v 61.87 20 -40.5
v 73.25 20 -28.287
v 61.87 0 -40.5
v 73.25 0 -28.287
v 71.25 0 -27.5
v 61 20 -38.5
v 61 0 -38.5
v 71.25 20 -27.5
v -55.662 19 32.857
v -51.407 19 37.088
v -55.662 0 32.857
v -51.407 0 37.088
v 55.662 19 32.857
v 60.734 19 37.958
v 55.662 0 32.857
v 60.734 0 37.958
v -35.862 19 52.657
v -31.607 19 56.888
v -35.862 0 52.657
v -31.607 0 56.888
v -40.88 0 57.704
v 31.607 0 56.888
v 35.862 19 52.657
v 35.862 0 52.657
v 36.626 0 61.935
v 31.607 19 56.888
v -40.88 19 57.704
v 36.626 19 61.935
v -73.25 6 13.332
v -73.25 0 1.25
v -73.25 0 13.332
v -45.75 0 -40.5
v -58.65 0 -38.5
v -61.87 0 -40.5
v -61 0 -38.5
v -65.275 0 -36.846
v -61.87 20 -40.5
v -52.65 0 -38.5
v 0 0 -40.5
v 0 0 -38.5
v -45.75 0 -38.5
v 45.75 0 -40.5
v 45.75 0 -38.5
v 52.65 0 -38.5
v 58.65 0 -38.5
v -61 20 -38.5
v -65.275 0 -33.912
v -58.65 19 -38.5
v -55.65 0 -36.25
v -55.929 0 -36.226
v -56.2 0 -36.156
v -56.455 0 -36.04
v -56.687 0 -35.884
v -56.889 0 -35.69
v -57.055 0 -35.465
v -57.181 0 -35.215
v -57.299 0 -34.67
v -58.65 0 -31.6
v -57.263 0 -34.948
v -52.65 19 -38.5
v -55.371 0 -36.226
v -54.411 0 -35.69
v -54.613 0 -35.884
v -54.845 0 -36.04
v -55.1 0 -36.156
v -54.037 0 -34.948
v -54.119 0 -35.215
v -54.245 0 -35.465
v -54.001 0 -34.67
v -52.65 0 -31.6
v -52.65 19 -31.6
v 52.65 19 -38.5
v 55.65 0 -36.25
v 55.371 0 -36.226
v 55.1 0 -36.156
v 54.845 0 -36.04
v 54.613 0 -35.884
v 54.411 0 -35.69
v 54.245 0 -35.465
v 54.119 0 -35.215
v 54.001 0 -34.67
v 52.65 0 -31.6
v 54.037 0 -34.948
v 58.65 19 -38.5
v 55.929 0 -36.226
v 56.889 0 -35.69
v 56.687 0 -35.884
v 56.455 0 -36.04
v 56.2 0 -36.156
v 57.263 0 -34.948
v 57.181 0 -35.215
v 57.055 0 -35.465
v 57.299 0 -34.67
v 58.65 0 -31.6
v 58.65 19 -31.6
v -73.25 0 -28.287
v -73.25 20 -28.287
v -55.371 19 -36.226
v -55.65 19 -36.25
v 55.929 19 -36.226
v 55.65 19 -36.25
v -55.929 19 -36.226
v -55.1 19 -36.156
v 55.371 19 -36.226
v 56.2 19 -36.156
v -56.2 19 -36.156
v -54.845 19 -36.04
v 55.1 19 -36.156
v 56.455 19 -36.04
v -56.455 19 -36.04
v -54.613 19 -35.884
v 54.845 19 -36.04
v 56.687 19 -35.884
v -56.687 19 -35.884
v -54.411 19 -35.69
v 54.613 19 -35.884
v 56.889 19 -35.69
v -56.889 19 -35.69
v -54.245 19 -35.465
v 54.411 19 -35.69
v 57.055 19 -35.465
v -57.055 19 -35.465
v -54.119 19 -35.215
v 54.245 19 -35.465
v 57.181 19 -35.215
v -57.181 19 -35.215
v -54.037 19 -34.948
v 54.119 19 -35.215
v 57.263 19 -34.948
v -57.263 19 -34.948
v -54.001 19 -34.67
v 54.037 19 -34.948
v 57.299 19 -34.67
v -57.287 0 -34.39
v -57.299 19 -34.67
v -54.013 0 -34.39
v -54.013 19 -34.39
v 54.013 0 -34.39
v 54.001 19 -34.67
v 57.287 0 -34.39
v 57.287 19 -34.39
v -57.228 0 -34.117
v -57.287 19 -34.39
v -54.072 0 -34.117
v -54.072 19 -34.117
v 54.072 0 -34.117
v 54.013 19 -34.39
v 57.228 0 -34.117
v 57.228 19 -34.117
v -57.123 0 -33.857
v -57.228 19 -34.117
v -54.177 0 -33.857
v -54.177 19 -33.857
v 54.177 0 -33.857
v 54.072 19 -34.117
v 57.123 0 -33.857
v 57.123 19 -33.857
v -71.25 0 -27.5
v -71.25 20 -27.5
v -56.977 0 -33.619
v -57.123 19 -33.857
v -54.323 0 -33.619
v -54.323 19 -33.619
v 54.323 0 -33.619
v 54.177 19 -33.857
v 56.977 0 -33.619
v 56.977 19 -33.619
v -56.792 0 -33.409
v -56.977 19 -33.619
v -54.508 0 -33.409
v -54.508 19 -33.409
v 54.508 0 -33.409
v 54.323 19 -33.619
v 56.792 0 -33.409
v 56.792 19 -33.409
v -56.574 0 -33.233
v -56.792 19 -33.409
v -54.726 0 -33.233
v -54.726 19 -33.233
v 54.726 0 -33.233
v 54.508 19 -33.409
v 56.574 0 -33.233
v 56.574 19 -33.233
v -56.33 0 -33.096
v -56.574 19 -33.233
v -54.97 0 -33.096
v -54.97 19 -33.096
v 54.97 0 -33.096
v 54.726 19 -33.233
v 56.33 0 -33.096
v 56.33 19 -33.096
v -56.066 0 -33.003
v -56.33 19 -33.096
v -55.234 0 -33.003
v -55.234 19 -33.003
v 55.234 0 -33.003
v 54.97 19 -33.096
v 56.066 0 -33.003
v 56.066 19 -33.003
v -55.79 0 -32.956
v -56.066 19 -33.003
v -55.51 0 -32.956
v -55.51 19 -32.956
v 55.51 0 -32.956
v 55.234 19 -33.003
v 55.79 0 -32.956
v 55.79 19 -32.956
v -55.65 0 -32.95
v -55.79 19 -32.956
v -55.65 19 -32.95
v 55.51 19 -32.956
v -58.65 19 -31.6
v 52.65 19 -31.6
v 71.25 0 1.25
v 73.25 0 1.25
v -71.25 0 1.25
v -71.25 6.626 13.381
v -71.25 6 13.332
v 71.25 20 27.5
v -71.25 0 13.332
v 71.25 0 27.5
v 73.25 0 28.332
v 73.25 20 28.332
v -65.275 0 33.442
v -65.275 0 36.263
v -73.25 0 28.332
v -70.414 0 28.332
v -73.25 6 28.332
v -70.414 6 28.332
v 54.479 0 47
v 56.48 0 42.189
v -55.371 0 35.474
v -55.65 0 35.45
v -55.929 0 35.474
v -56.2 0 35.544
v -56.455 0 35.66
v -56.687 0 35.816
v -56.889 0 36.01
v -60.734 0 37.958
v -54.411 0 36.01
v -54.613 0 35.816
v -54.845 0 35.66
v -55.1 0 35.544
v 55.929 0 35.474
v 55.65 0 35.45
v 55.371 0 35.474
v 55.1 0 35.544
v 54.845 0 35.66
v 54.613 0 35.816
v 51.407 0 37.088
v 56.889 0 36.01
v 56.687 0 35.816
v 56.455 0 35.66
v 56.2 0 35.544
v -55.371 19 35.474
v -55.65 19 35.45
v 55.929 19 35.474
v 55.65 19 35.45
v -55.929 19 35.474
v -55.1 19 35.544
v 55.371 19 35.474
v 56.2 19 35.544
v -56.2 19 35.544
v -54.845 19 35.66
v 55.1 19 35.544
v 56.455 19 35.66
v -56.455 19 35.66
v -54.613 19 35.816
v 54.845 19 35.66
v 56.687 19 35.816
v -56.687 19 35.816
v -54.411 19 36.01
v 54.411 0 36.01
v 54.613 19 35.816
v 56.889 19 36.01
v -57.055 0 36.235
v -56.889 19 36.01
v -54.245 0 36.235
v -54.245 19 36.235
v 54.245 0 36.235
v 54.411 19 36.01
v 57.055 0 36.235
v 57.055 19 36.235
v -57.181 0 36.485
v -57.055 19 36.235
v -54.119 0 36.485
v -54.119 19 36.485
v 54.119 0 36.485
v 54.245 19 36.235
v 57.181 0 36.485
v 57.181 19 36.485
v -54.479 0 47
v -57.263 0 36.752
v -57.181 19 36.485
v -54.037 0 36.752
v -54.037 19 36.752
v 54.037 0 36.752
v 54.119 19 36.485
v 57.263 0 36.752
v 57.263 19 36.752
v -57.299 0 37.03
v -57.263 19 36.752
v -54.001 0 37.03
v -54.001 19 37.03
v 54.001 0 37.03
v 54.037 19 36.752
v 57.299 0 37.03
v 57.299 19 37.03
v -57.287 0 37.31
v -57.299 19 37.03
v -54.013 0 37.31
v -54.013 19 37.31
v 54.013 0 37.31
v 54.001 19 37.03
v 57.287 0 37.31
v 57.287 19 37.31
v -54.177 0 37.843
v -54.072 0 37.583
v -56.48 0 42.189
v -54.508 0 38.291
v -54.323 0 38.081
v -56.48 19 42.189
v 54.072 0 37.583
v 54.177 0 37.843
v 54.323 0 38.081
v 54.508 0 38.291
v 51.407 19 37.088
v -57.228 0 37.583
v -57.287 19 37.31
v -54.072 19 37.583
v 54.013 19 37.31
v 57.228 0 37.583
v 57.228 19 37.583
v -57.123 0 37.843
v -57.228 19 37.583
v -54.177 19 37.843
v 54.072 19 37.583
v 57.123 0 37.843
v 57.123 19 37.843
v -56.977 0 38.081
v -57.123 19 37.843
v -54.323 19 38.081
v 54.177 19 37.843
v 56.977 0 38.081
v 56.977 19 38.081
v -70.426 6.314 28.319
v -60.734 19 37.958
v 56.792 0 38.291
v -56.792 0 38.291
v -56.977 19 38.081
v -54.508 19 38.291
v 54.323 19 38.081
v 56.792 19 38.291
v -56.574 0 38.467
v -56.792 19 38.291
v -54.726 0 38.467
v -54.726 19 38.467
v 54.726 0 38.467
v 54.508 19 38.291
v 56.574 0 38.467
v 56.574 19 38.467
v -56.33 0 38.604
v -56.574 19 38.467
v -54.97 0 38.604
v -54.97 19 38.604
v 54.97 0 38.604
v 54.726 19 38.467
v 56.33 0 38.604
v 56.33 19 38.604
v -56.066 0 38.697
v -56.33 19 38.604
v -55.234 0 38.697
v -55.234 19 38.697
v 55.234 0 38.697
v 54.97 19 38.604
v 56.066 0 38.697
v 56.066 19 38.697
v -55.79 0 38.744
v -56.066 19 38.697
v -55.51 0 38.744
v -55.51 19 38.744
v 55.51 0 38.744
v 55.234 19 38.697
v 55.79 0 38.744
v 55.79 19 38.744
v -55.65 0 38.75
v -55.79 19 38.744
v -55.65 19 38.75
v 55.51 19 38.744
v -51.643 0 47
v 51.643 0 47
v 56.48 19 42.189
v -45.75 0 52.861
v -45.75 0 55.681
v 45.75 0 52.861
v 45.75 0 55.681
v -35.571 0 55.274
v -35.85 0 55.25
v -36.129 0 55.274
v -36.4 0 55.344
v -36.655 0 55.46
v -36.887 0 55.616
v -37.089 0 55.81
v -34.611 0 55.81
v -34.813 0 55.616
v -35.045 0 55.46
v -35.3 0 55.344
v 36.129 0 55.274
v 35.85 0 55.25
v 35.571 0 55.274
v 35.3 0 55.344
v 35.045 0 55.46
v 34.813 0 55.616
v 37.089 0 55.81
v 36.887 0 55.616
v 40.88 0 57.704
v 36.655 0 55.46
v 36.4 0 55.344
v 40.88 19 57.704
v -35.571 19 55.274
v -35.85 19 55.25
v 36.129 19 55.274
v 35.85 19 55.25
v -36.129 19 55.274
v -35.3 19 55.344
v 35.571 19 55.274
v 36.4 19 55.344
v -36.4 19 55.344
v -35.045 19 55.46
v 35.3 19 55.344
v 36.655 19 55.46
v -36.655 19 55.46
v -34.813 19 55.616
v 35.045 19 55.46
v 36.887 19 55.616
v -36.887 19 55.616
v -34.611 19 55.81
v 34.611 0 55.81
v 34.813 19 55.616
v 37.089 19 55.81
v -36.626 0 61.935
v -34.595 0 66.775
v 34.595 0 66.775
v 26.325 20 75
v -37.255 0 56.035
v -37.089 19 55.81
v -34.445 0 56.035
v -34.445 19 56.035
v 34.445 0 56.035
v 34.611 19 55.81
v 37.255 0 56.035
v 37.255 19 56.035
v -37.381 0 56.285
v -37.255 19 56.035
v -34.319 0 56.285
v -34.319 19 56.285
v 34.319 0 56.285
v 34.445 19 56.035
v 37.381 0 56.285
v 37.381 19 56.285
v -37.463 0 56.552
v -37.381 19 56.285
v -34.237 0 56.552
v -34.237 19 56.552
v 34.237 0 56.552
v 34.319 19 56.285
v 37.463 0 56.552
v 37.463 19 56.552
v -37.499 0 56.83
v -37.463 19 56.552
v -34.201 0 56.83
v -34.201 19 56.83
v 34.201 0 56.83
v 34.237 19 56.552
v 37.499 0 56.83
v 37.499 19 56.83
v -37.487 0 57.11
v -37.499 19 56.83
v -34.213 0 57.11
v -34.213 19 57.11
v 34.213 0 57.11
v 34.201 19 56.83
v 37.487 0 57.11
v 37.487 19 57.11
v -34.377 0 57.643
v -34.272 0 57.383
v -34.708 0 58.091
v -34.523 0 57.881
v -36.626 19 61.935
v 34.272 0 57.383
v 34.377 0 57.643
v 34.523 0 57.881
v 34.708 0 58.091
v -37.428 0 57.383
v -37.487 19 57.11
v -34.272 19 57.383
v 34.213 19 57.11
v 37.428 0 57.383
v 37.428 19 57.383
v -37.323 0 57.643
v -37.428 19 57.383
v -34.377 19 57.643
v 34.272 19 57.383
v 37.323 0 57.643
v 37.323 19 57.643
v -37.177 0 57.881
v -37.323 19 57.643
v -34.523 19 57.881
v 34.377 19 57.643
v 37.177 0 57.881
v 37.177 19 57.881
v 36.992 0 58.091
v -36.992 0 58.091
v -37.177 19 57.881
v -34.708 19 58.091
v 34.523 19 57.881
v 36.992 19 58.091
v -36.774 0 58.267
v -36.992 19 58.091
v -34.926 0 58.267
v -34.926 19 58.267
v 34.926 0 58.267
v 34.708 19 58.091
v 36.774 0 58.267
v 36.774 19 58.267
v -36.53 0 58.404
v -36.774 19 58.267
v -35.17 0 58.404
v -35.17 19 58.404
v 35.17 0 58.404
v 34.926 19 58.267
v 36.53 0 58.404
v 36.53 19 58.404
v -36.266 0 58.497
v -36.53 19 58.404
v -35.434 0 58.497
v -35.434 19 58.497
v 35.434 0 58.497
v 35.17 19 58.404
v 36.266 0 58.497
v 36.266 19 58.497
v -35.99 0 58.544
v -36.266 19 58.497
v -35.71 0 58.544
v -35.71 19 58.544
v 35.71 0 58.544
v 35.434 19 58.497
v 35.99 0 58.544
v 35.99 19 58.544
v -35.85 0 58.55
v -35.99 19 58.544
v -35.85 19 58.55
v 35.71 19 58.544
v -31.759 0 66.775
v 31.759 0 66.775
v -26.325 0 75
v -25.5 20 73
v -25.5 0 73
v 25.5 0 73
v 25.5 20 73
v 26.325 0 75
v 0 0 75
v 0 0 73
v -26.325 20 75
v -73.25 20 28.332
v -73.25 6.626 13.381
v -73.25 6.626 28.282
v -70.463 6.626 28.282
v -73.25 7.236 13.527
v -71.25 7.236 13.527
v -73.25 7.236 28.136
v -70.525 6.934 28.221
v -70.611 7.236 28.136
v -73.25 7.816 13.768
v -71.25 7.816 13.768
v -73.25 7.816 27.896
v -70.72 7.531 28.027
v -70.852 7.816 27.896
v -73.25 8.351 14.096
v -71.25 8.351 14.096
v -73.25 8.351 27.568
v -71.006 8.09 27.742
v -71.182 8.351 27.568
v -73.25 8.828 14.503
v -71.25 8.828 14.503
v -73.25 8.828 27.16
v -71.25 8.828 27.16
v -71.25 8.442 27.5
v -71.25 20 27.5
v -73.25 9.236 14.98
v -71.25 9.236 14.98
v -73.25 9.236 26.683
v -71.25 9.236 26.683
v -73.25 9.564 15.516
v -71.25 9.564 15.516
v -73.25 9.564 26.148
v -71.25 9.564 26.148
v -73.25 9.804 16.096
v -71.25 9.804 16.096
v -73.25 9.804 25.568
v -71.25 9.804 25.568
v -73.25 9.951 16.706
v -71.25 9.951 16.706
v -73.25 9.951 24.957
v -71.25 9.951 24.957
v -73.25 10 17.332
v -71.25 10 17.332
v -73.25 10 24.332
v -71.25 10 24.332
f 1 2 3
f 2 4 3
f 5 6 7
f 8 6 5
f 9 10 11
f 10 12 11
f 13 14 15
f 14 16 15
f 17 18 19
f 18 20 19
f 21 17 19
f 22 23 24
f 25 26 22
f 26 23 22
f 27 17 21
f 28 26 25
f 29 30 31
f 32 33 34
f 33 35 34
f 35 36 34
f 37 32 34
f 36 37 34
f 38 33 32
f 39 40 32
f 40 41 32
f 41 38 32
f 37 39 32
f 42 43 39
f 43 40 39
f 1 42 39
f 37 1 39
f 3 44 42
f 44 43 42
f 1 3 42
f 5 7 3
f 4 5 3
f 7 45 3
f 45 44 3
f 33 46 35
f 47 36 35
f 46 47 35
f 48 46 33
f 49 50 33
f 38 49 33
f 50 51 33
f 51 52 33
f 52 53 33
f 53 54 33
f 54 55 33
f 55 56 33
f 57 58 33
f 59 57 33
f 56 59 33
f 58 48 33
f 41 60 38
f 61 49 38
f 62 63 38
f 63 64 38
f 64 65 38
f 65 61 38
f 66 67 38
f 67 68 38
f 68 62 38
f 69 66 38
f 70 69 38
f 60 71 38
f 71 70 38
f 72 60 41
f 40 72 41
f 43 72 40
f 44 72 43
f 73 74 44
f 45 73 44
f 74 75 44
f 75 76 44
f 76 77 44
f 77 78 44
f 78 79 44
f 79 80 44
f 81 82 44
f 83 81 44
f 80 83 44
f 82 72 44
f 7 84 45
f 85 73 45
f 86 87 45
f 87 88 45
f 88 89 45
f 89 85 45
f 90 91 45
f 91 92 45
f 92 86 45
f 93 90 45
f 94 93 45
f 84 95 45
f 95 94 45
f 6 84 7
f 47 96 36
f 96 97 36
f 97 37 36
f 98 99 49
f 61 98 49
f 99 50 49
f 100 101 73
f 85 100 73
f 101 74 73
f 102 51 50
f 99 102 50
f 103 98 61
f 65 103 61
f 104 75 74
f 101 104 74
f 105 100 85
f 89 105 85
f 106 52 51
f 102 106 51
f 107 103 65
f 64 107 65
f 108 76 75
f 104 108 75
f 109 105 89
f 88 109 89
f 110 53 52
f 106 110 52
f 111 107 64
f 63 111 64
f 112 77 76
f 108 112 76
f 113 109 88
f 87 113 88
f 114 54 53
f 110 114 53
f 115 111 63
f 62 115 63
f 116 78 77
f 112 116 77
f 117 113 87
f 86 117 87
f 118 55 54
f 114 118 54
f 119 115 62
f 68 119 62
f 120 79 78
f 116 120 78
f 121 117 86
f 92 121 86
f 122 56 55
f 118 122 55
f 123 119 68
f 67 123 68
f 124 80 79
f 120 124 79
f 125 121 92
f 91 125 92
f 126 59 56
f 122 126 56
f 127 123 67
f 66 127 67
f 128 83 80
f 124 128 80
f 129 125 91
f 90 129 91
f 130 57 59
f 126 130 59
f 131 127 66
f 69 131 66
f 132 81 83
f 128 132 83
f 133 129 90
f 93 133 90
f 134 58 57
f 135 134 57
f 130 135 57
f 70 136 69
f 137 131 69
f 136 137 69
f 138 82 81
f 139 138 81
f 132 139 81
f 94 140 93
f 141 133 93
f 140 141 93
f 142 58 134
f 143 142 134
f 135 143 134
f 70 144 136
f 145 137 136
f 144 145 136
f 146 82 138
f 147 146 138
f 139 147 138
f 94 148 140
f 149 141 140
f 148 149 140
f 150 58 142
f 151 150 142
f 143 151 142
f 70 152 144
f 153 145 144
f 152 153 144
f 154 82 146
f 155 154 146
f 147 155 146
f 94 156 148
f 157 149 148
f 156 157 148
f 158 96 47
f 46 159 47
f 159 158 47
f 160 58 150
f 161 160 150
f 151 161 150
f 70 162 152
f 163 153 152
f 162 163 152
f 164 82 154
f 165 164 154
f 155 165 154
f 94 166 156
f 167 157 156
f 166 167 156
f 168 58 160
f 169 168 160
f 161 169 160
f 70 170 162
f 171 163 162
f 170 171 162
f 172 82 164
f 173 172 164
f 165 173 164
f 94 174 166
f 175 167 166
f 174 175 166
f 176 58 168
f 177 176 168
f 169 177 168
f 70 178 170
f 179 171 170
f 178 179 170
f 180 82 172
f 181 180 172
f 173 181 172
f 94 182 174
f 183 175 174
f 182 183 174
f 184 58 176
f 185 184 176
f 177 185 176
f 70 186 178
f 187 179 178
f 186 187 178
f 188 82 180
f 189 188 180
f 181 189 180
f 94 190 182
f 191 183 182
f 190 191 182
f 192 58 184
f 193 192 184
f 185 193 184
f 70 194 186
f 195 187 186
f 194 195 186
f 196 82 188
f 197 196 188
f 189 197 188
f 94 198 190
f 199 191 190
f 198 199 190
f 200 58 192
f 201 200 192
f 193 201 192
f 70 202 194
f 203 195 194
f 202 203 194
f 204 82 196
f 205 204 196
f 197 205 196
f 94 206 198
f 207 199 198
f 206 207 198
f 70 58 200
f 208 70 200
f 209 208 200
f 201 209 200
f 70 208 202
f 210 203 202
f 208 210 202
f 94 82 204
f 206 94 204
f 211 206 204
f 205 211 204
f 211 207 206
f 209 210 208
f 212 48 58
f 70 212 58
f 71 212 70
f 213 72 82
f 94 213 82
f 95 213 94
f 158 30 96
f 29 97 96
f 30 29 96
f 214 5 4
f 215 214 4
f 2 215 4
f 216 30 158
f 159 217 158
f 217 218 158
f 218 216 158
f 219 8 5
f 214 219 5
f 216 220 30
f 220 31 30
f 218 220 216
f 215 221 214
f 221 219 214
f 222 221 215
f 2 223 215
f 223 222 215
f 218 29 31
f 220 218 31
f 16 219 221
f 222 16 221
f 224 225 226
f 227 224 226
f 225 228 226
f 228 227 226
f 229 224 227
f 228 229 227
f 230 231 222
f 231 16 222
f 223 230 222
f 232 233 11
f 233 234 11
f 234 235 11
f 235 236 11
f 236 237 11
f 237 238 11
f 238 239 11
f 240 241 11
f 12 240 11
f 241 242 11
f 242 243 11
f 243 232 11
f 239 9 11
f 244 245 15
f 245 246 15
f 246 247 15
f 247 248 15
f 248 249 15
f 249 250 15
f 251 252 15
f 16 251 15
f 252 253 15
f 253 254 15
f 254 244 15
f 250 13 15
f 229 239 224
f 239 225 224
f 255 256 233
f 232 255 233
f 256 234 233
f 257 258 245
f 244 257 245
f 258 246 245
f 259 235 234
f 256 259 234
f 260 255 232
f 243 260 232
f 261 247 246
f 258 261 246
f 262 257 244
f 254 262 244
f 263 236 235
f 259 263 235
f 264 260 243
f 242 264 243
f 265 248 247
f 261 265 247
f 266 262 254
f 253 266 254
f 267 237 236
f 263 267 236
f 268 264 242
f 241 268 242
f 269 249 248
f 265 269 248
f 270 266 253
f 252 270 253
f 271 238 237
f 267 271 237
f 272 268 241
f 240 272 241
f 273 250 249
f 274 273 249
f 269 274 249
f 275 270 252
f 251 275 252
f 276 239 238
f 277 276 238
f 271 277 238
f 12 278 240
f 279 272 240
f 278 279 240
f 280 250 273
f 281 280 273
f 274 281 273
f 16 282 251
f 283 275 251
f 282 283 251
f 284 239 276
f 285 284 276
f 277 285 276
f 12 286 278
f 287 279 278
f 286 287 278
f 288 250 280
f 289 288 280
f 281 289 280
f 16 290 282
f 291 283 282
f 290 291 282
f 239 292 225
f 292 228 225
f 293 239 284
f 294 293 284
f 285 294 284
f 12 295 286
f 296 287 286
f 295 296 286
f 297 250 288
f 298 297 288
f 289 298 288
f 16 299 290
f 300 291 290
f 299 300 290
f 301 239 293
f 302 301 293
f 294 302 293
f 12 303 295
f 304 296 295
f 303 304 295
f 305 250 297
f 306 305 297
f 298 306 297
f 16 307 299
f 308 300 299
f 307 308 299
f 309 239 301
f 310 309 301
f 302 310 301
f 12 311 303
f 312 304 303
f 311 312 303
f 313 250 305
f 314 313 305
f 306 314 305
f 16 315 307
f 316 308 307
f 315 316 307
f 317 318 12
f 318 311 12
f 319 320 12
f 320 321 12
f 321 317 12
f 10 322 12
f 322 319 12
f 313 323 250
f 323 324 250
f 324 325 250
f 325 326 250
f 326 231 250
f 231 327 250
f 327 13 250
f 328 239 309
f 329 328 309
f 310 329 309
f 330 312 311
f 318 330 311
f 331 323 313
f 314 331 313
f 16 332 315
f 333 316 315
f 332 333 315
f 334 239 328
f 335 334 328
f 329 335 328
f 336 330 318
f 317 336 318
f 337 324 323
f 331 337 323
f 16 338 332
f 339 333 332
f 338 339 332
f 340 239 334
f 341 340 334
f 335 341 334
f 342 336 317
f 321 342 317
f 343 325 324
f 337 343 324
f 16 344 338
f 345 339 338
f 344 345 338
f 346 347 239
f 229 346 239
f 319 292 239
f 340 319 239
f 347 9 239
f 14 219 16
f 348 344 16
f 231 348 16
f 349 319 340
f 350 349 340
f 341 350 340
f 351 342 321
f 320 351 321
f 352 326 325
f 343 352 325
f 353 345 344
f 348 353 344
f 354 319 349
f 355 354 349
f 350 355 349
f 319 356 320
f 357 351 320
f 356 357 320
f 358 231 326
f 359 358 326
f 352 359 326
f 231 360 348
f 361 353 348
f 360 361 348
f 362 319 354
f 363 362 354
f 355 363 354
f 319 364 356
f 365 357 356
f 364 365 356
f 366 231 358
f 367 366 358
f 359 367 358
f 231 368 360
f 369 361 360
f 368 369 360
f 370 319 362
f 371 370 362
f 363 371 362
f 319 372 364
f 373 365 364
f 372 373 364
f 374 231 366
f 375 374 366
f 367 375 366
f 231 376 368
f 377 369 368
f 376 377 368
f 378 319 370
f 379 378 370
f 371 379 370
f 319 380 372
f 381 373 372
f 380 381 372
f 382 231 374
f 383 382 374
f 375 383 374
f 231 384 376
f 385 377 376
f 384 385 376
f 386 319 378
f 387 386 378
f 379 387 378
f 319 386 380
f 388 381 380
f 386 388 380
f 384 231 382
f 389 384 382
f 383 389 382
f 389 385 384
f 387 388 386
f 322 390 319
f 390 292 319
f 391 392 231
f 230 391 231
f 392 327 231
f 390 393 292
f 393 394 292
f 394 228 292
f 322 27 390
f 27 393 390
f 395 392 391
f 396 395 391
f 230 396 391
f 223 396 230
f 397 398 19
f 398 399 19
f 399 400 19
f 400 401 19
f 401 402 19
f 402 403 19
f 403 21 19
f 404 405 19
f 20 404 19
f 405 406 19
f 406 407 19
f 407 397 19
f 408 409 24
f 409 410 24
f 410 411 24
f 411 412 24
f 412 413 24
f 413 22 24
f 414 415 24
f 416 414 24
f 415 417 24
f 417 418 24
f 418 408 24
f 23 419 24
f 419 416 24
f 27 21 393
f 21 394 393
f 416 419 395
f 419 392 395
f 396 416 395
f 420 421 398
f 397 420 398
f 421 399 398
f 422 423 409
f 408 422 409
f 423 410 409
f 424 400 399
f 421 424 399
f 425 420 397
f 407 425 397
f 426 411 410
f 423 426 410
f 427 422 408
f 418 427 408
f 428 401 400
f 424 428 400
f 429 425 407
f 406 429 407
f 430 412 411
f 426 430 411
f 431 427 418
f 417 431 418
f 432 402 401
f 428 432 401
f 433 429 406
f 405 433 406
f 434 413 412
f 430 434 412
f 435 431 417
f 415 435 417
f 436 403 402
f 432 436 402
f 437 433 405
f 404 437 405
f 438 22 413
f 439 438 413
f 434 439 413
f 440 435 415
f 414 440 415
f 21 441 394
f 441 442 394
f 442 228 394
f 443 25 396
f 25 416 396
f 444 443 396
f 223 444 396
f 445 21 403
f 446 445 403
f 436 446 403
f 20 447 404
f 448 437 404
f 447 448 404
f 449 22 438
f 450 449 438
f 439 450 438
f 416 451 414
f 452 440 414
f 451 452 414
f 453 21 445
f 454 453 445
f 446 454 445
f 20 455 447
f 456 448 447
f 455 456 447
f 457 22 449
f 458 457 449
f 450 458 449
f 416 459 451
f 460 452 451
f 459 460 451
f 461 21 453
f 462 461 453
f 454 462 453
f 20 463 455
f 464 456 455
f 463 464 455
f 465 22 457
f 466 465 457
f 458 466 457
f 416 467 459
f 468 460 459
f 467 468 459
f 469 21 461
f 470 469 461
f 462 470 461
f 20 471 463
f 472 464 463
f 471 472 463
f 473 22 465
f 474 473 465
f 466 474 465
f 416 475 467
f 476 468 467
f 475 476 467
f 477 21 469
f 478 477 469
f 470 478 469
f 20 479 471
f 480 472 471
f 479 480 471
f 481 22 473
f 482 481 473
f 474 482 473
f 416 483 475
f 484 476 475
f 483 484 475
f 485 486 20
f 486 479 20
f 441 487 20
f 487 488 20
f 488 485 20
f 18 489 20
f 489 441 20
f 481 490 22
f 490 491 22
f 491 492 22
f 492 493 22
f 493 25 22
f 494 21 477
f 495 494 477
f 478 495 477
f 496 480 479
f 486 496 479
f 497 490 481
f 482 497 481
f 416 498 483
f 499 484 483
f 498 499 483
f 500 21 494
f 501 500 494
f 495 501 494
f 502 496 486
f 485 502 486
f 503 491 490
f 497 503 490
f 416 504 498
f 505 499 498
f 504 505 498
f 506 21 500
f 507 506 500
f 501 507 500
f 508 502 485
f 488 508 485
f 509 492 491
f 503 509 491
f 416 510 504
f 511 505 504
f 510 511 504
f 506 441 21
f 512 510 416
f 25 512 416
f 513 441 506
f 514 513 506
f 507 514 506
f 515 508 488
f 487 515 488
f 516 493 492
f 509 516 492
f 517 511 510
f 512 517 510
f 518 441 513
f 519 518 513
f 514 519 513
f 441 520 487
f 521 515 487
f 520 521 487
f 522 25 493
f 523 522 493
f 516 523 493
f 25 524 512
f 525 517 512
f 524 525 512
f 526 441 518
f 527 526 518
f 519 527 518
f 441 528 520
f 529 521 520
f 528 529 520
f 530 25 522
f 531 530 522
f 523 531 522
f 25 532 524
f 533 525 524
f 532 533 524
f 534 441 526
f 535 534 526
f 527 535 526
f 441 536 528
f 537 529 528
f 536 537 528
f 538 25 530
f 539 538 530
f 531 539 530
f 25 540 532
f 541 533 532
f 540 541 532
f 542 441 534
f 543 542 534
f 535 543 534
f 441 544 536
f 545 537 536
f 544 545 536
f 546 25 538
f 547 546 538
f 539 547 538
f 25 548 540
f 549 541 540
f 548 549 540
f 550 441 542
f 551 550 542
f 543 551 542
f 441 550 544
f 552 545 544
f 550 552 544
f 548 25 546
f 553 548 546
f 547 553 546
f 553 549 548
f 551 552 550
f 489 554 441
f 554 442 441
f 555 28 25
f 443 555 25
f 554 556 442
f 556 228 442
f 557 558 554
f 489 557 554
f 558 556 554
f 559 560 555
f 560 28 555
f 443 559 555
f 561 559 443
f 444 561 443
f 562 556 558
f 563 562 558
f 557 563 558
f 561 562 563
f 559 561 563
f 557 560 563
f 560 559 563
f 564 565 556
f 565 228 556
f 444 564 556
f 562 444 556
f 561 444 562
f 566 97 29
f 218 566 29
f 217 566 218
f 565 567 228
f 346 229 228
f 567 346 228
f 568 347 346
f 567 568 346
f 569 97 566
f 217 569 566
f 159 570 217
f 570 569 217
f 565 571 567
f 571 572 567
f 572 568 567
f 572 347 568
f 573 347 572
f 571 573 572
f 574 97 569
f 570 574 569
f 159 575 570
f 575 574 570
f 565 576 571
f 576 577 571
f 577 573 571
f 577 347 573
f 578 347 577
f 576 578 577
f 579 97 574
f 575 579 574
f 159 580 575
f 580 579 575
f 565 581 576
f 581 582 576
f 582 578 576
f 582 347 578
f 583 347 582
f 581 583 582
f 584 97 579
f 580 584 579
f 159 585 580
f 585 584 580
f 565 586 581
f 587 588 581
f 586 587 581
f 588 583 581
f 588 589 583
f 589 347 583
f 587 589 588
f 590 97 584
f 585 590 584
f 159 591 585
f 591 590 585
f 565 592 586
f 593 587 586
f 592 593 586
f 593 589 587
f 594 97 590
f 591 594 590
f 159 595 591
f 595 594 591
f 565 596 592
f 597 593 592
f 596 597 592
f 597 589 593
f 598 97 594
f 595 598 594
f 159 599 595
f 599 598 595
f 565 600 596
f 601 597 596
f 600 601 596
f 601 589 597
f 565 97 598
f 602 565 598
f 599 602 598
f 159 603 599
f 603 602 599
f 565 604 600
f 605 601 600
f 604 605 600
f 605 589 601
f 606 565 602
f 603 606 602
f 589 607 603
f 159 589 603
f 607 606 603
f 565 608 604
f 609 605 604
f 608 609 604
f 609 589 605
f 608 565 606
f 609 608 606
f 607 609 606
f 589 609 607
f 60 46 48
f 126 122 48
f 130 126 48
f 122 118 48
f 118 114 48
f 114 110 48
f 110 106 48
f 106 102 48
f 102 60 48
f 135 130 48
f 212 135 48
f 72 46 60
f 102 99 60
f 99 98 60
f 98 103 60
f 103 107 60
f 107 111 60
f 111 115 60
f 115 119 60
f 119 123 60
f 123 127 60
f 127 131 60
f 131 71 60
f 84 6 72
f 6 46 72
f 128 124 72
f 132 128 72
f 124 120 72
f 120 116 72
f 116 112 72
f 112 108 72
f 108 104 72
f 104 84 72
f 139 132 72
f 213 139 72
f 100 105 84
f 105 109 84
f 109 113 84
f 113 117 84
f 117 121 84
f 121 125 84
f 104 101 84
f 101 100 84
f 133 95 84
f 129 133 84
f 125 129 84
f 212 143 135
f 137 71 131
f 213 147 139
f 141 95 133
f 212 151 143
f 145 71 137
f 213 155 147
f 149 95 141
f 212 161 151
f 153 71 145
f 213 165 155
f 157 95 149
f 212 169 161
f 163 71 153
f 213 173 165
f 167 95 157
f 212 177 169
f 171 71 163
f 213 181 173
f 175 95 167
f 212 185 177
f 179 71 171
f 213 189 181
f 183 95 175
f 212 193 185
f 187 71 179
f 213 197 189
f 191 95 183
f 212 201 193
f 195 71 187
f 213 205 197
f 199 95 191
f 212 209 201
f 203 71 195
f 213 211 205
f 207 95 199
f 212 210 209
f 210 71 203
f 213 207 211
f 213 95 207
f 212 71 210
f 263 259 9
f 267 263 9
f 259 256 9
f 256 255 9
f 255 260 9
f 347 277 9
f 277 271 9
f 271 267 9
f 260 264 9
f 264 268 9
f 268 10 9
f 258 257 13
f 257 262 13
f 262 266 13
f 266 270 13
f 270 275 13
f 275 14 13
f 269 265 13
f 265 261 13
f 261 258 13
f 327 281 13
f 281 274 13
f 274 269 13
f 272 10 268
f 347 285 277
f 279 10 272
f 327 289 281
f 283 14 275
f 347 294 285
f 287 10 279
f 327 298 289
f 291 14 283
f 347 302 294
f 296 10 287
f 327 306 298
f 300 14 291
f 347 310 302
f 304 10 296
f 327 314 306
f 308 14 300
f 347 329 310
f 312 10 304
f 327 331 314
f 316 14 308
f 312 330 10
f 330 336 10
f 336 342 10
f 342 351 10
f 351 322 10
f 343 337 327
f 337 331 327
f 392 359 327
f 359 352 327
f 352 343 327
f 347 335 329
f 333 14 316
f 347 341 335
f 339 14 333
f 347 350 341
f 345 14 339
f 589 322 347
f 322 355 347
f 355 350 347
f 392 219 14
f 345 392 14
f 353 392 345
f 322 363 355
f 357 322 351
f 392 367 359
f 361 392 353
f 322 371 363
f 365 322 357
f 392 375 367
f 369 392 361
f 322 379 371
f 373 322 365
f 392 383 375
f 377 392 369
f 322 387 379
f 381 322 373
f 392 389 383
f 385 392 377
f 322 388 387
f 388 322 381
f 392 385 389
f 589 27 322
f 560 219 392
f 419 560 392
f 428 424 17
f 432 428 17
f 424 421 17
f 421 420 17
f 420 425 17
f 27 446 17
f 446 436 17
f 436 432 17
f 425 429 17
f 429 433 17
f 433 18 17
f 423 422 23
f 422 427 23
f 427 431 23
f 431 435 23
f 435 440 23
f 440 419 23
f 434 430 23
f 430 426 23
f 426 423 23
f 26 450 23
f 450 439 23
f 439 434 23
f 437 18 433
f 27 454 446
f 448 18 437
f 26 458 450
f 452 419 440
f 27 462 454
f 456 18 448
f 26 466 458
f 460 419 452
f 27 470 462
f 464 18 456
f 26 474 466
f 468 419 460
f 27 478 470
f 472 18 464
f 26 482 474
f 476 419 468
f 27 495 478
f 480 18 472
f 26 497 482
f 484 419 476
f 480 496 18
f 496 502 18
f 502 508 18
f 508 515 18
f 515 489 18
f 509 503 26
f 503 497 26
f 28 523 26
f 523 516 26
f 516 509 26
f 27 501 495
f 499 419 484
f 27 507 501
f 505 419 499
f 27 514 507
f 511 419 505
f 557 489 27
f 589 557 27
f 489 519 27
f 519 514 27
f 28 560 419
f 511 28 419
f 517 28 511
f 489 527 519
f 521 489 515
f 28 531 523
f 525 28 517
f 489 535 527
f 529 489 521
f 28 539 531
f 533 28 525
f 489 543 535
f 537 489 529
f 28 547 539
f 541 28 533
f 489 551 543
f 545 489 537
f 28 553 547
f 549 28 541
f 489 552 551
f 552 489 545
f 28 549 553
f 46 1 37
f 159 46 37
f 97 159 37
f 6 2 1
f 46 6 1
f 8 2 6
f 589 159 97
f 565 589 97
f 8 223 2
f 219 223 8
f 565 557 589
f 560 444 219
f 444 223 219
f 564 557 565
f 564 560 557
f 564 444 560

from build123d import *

# Parameters (mm, degrees)
BOSS_EXTRUDE1_DEPTH = 20
SKETCH2_R           = 1.65
SKETCH2_W           = 6
SKETCH2_H           = 6.9
BOSS_EXTRUDE2_DEPTH = 19
CUT_EXTRUDE1_DEPTH  = 10


with BuildPart() as part:
    # Sketch1 → Boss-Extrude1 (new body)
    with BuildSketch(Plane(origin=(0, 0, 0), x_dir=(1, 0, 0), z_dir=(0, 1, 0))):
        Polygon((-61.870068173, 40.5), (61.870068173, 40.5), (73.25, 28.287390235), (73.25, -28.33163873), (26.325219162, -75), (-26.325219162, -75), (-73.25, -28.33163873), (-73.25, 28.287390235), align=None)
        Polygon((-61, 38.5), (61, 38.5), (71.25, 27.5), (71.25, -27.5), (25.5, -73), (-25.5, -73), (-71.25, -27.5), (-71.25, 27.5), align=None, mode=Mode.SUBTRACT)
    extrude(amount=BOSS_EXTRUDE1_DEPTH)

    # Sketch2 → Boss-Extrude2 (add)
    # profile 1 of 6: a face of its own
    with BuildSketch(Plane(origin=(0, 0, 0), x_dir=(1, 0, 0), z_dir=(0, 1, 0))):
        Polygon((-40.880359301, -57.703686378), (-35.861623629, -52.657375236), (-31.607375236, -56.888376371), (-36.626110907, -61.934687513), align=None)
        with Locations(Location((-35.85, -56.9, 0), (0, 0, 270))):
            Circle(SKETCH2_R, mode=Mode.SUBTRACT)
    # profile 2 of 6: a face of its own
    with BuildSketch(Plane(origin=(0, 0, 0), x_dir=(1, 0, 0), z_dir=(0, 1, 0))):
        Polygon((-60.73445685, -37.958081166), (-55.661623629, -32.857375236), (-51.407375236, -37.088376371), (-56.480208456, -42.189082301), align=None)
        with Locations(Location((-55.65, -37.1, 0), (0, 0, 270))):
            Circle(SKETCH2_R, mode=Mode.SUBTRACT)
    # profile 3 of 6: a face of its own
    with BuildSketch(Plane(origin=(0, 0, 0), x_dir=(1, 0, 0), z_dir=(0, 1, 0))):
        with Locations((-55.65, 35.05)):
            Rectangle(SKETCH2_W, SKETCH2_H)
        with Locations(Location((-55.65, 34.6, 0), (0, 0, 270))):
            Circle(SKETCH2_R, mode=Mode.SUBTRACT)
    # profile 4 of 6: a face of its own
    with BuildSketch(Plane(origin=(0, 0, 0), x_dir=(1, 0, 0), z_dir=(0, 1, 0))):
        with Locations((55.65, 35.05)):
            Rectangle(SKETCH2_W, SKETCH2_H)
        with Locations(Location((55.65, 34.6, 0), (0, 0, 90))):
            Circle(SKETCH2_R, mode=Mode.SUBTRACT)
    # profile 5 of 6: a face of its own
    with BuildSketch(Plane(origin=(0, 0, 0), x_dir=(1, 0, 0), z_dir=(0, 1, 0))):
        Polygon((56.480208456, -42.189082301), (60.73445685, -37.958081166), (55.661623629, -32.857375236), (51.407375236, -37.088376371), align=None)
        with Locations(Location((55.65, -37.1, 0), (0, 0, 90))):
            Circle(SKETCH2_R, mode=Mode.SUBTRACT)
    # profile 6 of 6: a face of its own
    with BuildSketch(Plane(origin=(0, 0, 0), x_dir=(1, 0, 0), z_dir=(0, 1, 0))):
        Polygon((36.626110907, -61.934687513), (40.880359301, -57.703686378), (35.861623629, -52.657375236), (31.607375236, -56.888376371), align=None)
        with Locations(Location((35.85, -56.9, 0), (0, 0, 90))):
            Circle(SKETCH2_R, mode=Mode.SUBTRACT)
    extrude(amount=BOSS_EXTRUDE2_DEPTH)

    # Sketch3 → Cut-Extrude1 (cut)
    with BuildSketch(Plane.ZY.offset(73.25)):
        with BuildLine():
            Line((28.33163873, 0), (13.33163873, 0))
            Line((13.33163873, 0), (13.33163873, 6))
            ThreePointArc((13.33163873, 6), (14.503211605, 8.828427125), (17.33163873, 10))
            Line((17.33163873, 10), (24.33163873, 10))
            ThreePointArc((24.33163873, 10), (27.160065854, 8.828427125), (28.33163873, 6))
            Line((28.33163873, 6), (28.33163873, 0))
        make_face()
    extrude(amount=-CUT_EXTRUDE1_DEPTH, mode=Mode.SUBTRACT)


solid = part.part
